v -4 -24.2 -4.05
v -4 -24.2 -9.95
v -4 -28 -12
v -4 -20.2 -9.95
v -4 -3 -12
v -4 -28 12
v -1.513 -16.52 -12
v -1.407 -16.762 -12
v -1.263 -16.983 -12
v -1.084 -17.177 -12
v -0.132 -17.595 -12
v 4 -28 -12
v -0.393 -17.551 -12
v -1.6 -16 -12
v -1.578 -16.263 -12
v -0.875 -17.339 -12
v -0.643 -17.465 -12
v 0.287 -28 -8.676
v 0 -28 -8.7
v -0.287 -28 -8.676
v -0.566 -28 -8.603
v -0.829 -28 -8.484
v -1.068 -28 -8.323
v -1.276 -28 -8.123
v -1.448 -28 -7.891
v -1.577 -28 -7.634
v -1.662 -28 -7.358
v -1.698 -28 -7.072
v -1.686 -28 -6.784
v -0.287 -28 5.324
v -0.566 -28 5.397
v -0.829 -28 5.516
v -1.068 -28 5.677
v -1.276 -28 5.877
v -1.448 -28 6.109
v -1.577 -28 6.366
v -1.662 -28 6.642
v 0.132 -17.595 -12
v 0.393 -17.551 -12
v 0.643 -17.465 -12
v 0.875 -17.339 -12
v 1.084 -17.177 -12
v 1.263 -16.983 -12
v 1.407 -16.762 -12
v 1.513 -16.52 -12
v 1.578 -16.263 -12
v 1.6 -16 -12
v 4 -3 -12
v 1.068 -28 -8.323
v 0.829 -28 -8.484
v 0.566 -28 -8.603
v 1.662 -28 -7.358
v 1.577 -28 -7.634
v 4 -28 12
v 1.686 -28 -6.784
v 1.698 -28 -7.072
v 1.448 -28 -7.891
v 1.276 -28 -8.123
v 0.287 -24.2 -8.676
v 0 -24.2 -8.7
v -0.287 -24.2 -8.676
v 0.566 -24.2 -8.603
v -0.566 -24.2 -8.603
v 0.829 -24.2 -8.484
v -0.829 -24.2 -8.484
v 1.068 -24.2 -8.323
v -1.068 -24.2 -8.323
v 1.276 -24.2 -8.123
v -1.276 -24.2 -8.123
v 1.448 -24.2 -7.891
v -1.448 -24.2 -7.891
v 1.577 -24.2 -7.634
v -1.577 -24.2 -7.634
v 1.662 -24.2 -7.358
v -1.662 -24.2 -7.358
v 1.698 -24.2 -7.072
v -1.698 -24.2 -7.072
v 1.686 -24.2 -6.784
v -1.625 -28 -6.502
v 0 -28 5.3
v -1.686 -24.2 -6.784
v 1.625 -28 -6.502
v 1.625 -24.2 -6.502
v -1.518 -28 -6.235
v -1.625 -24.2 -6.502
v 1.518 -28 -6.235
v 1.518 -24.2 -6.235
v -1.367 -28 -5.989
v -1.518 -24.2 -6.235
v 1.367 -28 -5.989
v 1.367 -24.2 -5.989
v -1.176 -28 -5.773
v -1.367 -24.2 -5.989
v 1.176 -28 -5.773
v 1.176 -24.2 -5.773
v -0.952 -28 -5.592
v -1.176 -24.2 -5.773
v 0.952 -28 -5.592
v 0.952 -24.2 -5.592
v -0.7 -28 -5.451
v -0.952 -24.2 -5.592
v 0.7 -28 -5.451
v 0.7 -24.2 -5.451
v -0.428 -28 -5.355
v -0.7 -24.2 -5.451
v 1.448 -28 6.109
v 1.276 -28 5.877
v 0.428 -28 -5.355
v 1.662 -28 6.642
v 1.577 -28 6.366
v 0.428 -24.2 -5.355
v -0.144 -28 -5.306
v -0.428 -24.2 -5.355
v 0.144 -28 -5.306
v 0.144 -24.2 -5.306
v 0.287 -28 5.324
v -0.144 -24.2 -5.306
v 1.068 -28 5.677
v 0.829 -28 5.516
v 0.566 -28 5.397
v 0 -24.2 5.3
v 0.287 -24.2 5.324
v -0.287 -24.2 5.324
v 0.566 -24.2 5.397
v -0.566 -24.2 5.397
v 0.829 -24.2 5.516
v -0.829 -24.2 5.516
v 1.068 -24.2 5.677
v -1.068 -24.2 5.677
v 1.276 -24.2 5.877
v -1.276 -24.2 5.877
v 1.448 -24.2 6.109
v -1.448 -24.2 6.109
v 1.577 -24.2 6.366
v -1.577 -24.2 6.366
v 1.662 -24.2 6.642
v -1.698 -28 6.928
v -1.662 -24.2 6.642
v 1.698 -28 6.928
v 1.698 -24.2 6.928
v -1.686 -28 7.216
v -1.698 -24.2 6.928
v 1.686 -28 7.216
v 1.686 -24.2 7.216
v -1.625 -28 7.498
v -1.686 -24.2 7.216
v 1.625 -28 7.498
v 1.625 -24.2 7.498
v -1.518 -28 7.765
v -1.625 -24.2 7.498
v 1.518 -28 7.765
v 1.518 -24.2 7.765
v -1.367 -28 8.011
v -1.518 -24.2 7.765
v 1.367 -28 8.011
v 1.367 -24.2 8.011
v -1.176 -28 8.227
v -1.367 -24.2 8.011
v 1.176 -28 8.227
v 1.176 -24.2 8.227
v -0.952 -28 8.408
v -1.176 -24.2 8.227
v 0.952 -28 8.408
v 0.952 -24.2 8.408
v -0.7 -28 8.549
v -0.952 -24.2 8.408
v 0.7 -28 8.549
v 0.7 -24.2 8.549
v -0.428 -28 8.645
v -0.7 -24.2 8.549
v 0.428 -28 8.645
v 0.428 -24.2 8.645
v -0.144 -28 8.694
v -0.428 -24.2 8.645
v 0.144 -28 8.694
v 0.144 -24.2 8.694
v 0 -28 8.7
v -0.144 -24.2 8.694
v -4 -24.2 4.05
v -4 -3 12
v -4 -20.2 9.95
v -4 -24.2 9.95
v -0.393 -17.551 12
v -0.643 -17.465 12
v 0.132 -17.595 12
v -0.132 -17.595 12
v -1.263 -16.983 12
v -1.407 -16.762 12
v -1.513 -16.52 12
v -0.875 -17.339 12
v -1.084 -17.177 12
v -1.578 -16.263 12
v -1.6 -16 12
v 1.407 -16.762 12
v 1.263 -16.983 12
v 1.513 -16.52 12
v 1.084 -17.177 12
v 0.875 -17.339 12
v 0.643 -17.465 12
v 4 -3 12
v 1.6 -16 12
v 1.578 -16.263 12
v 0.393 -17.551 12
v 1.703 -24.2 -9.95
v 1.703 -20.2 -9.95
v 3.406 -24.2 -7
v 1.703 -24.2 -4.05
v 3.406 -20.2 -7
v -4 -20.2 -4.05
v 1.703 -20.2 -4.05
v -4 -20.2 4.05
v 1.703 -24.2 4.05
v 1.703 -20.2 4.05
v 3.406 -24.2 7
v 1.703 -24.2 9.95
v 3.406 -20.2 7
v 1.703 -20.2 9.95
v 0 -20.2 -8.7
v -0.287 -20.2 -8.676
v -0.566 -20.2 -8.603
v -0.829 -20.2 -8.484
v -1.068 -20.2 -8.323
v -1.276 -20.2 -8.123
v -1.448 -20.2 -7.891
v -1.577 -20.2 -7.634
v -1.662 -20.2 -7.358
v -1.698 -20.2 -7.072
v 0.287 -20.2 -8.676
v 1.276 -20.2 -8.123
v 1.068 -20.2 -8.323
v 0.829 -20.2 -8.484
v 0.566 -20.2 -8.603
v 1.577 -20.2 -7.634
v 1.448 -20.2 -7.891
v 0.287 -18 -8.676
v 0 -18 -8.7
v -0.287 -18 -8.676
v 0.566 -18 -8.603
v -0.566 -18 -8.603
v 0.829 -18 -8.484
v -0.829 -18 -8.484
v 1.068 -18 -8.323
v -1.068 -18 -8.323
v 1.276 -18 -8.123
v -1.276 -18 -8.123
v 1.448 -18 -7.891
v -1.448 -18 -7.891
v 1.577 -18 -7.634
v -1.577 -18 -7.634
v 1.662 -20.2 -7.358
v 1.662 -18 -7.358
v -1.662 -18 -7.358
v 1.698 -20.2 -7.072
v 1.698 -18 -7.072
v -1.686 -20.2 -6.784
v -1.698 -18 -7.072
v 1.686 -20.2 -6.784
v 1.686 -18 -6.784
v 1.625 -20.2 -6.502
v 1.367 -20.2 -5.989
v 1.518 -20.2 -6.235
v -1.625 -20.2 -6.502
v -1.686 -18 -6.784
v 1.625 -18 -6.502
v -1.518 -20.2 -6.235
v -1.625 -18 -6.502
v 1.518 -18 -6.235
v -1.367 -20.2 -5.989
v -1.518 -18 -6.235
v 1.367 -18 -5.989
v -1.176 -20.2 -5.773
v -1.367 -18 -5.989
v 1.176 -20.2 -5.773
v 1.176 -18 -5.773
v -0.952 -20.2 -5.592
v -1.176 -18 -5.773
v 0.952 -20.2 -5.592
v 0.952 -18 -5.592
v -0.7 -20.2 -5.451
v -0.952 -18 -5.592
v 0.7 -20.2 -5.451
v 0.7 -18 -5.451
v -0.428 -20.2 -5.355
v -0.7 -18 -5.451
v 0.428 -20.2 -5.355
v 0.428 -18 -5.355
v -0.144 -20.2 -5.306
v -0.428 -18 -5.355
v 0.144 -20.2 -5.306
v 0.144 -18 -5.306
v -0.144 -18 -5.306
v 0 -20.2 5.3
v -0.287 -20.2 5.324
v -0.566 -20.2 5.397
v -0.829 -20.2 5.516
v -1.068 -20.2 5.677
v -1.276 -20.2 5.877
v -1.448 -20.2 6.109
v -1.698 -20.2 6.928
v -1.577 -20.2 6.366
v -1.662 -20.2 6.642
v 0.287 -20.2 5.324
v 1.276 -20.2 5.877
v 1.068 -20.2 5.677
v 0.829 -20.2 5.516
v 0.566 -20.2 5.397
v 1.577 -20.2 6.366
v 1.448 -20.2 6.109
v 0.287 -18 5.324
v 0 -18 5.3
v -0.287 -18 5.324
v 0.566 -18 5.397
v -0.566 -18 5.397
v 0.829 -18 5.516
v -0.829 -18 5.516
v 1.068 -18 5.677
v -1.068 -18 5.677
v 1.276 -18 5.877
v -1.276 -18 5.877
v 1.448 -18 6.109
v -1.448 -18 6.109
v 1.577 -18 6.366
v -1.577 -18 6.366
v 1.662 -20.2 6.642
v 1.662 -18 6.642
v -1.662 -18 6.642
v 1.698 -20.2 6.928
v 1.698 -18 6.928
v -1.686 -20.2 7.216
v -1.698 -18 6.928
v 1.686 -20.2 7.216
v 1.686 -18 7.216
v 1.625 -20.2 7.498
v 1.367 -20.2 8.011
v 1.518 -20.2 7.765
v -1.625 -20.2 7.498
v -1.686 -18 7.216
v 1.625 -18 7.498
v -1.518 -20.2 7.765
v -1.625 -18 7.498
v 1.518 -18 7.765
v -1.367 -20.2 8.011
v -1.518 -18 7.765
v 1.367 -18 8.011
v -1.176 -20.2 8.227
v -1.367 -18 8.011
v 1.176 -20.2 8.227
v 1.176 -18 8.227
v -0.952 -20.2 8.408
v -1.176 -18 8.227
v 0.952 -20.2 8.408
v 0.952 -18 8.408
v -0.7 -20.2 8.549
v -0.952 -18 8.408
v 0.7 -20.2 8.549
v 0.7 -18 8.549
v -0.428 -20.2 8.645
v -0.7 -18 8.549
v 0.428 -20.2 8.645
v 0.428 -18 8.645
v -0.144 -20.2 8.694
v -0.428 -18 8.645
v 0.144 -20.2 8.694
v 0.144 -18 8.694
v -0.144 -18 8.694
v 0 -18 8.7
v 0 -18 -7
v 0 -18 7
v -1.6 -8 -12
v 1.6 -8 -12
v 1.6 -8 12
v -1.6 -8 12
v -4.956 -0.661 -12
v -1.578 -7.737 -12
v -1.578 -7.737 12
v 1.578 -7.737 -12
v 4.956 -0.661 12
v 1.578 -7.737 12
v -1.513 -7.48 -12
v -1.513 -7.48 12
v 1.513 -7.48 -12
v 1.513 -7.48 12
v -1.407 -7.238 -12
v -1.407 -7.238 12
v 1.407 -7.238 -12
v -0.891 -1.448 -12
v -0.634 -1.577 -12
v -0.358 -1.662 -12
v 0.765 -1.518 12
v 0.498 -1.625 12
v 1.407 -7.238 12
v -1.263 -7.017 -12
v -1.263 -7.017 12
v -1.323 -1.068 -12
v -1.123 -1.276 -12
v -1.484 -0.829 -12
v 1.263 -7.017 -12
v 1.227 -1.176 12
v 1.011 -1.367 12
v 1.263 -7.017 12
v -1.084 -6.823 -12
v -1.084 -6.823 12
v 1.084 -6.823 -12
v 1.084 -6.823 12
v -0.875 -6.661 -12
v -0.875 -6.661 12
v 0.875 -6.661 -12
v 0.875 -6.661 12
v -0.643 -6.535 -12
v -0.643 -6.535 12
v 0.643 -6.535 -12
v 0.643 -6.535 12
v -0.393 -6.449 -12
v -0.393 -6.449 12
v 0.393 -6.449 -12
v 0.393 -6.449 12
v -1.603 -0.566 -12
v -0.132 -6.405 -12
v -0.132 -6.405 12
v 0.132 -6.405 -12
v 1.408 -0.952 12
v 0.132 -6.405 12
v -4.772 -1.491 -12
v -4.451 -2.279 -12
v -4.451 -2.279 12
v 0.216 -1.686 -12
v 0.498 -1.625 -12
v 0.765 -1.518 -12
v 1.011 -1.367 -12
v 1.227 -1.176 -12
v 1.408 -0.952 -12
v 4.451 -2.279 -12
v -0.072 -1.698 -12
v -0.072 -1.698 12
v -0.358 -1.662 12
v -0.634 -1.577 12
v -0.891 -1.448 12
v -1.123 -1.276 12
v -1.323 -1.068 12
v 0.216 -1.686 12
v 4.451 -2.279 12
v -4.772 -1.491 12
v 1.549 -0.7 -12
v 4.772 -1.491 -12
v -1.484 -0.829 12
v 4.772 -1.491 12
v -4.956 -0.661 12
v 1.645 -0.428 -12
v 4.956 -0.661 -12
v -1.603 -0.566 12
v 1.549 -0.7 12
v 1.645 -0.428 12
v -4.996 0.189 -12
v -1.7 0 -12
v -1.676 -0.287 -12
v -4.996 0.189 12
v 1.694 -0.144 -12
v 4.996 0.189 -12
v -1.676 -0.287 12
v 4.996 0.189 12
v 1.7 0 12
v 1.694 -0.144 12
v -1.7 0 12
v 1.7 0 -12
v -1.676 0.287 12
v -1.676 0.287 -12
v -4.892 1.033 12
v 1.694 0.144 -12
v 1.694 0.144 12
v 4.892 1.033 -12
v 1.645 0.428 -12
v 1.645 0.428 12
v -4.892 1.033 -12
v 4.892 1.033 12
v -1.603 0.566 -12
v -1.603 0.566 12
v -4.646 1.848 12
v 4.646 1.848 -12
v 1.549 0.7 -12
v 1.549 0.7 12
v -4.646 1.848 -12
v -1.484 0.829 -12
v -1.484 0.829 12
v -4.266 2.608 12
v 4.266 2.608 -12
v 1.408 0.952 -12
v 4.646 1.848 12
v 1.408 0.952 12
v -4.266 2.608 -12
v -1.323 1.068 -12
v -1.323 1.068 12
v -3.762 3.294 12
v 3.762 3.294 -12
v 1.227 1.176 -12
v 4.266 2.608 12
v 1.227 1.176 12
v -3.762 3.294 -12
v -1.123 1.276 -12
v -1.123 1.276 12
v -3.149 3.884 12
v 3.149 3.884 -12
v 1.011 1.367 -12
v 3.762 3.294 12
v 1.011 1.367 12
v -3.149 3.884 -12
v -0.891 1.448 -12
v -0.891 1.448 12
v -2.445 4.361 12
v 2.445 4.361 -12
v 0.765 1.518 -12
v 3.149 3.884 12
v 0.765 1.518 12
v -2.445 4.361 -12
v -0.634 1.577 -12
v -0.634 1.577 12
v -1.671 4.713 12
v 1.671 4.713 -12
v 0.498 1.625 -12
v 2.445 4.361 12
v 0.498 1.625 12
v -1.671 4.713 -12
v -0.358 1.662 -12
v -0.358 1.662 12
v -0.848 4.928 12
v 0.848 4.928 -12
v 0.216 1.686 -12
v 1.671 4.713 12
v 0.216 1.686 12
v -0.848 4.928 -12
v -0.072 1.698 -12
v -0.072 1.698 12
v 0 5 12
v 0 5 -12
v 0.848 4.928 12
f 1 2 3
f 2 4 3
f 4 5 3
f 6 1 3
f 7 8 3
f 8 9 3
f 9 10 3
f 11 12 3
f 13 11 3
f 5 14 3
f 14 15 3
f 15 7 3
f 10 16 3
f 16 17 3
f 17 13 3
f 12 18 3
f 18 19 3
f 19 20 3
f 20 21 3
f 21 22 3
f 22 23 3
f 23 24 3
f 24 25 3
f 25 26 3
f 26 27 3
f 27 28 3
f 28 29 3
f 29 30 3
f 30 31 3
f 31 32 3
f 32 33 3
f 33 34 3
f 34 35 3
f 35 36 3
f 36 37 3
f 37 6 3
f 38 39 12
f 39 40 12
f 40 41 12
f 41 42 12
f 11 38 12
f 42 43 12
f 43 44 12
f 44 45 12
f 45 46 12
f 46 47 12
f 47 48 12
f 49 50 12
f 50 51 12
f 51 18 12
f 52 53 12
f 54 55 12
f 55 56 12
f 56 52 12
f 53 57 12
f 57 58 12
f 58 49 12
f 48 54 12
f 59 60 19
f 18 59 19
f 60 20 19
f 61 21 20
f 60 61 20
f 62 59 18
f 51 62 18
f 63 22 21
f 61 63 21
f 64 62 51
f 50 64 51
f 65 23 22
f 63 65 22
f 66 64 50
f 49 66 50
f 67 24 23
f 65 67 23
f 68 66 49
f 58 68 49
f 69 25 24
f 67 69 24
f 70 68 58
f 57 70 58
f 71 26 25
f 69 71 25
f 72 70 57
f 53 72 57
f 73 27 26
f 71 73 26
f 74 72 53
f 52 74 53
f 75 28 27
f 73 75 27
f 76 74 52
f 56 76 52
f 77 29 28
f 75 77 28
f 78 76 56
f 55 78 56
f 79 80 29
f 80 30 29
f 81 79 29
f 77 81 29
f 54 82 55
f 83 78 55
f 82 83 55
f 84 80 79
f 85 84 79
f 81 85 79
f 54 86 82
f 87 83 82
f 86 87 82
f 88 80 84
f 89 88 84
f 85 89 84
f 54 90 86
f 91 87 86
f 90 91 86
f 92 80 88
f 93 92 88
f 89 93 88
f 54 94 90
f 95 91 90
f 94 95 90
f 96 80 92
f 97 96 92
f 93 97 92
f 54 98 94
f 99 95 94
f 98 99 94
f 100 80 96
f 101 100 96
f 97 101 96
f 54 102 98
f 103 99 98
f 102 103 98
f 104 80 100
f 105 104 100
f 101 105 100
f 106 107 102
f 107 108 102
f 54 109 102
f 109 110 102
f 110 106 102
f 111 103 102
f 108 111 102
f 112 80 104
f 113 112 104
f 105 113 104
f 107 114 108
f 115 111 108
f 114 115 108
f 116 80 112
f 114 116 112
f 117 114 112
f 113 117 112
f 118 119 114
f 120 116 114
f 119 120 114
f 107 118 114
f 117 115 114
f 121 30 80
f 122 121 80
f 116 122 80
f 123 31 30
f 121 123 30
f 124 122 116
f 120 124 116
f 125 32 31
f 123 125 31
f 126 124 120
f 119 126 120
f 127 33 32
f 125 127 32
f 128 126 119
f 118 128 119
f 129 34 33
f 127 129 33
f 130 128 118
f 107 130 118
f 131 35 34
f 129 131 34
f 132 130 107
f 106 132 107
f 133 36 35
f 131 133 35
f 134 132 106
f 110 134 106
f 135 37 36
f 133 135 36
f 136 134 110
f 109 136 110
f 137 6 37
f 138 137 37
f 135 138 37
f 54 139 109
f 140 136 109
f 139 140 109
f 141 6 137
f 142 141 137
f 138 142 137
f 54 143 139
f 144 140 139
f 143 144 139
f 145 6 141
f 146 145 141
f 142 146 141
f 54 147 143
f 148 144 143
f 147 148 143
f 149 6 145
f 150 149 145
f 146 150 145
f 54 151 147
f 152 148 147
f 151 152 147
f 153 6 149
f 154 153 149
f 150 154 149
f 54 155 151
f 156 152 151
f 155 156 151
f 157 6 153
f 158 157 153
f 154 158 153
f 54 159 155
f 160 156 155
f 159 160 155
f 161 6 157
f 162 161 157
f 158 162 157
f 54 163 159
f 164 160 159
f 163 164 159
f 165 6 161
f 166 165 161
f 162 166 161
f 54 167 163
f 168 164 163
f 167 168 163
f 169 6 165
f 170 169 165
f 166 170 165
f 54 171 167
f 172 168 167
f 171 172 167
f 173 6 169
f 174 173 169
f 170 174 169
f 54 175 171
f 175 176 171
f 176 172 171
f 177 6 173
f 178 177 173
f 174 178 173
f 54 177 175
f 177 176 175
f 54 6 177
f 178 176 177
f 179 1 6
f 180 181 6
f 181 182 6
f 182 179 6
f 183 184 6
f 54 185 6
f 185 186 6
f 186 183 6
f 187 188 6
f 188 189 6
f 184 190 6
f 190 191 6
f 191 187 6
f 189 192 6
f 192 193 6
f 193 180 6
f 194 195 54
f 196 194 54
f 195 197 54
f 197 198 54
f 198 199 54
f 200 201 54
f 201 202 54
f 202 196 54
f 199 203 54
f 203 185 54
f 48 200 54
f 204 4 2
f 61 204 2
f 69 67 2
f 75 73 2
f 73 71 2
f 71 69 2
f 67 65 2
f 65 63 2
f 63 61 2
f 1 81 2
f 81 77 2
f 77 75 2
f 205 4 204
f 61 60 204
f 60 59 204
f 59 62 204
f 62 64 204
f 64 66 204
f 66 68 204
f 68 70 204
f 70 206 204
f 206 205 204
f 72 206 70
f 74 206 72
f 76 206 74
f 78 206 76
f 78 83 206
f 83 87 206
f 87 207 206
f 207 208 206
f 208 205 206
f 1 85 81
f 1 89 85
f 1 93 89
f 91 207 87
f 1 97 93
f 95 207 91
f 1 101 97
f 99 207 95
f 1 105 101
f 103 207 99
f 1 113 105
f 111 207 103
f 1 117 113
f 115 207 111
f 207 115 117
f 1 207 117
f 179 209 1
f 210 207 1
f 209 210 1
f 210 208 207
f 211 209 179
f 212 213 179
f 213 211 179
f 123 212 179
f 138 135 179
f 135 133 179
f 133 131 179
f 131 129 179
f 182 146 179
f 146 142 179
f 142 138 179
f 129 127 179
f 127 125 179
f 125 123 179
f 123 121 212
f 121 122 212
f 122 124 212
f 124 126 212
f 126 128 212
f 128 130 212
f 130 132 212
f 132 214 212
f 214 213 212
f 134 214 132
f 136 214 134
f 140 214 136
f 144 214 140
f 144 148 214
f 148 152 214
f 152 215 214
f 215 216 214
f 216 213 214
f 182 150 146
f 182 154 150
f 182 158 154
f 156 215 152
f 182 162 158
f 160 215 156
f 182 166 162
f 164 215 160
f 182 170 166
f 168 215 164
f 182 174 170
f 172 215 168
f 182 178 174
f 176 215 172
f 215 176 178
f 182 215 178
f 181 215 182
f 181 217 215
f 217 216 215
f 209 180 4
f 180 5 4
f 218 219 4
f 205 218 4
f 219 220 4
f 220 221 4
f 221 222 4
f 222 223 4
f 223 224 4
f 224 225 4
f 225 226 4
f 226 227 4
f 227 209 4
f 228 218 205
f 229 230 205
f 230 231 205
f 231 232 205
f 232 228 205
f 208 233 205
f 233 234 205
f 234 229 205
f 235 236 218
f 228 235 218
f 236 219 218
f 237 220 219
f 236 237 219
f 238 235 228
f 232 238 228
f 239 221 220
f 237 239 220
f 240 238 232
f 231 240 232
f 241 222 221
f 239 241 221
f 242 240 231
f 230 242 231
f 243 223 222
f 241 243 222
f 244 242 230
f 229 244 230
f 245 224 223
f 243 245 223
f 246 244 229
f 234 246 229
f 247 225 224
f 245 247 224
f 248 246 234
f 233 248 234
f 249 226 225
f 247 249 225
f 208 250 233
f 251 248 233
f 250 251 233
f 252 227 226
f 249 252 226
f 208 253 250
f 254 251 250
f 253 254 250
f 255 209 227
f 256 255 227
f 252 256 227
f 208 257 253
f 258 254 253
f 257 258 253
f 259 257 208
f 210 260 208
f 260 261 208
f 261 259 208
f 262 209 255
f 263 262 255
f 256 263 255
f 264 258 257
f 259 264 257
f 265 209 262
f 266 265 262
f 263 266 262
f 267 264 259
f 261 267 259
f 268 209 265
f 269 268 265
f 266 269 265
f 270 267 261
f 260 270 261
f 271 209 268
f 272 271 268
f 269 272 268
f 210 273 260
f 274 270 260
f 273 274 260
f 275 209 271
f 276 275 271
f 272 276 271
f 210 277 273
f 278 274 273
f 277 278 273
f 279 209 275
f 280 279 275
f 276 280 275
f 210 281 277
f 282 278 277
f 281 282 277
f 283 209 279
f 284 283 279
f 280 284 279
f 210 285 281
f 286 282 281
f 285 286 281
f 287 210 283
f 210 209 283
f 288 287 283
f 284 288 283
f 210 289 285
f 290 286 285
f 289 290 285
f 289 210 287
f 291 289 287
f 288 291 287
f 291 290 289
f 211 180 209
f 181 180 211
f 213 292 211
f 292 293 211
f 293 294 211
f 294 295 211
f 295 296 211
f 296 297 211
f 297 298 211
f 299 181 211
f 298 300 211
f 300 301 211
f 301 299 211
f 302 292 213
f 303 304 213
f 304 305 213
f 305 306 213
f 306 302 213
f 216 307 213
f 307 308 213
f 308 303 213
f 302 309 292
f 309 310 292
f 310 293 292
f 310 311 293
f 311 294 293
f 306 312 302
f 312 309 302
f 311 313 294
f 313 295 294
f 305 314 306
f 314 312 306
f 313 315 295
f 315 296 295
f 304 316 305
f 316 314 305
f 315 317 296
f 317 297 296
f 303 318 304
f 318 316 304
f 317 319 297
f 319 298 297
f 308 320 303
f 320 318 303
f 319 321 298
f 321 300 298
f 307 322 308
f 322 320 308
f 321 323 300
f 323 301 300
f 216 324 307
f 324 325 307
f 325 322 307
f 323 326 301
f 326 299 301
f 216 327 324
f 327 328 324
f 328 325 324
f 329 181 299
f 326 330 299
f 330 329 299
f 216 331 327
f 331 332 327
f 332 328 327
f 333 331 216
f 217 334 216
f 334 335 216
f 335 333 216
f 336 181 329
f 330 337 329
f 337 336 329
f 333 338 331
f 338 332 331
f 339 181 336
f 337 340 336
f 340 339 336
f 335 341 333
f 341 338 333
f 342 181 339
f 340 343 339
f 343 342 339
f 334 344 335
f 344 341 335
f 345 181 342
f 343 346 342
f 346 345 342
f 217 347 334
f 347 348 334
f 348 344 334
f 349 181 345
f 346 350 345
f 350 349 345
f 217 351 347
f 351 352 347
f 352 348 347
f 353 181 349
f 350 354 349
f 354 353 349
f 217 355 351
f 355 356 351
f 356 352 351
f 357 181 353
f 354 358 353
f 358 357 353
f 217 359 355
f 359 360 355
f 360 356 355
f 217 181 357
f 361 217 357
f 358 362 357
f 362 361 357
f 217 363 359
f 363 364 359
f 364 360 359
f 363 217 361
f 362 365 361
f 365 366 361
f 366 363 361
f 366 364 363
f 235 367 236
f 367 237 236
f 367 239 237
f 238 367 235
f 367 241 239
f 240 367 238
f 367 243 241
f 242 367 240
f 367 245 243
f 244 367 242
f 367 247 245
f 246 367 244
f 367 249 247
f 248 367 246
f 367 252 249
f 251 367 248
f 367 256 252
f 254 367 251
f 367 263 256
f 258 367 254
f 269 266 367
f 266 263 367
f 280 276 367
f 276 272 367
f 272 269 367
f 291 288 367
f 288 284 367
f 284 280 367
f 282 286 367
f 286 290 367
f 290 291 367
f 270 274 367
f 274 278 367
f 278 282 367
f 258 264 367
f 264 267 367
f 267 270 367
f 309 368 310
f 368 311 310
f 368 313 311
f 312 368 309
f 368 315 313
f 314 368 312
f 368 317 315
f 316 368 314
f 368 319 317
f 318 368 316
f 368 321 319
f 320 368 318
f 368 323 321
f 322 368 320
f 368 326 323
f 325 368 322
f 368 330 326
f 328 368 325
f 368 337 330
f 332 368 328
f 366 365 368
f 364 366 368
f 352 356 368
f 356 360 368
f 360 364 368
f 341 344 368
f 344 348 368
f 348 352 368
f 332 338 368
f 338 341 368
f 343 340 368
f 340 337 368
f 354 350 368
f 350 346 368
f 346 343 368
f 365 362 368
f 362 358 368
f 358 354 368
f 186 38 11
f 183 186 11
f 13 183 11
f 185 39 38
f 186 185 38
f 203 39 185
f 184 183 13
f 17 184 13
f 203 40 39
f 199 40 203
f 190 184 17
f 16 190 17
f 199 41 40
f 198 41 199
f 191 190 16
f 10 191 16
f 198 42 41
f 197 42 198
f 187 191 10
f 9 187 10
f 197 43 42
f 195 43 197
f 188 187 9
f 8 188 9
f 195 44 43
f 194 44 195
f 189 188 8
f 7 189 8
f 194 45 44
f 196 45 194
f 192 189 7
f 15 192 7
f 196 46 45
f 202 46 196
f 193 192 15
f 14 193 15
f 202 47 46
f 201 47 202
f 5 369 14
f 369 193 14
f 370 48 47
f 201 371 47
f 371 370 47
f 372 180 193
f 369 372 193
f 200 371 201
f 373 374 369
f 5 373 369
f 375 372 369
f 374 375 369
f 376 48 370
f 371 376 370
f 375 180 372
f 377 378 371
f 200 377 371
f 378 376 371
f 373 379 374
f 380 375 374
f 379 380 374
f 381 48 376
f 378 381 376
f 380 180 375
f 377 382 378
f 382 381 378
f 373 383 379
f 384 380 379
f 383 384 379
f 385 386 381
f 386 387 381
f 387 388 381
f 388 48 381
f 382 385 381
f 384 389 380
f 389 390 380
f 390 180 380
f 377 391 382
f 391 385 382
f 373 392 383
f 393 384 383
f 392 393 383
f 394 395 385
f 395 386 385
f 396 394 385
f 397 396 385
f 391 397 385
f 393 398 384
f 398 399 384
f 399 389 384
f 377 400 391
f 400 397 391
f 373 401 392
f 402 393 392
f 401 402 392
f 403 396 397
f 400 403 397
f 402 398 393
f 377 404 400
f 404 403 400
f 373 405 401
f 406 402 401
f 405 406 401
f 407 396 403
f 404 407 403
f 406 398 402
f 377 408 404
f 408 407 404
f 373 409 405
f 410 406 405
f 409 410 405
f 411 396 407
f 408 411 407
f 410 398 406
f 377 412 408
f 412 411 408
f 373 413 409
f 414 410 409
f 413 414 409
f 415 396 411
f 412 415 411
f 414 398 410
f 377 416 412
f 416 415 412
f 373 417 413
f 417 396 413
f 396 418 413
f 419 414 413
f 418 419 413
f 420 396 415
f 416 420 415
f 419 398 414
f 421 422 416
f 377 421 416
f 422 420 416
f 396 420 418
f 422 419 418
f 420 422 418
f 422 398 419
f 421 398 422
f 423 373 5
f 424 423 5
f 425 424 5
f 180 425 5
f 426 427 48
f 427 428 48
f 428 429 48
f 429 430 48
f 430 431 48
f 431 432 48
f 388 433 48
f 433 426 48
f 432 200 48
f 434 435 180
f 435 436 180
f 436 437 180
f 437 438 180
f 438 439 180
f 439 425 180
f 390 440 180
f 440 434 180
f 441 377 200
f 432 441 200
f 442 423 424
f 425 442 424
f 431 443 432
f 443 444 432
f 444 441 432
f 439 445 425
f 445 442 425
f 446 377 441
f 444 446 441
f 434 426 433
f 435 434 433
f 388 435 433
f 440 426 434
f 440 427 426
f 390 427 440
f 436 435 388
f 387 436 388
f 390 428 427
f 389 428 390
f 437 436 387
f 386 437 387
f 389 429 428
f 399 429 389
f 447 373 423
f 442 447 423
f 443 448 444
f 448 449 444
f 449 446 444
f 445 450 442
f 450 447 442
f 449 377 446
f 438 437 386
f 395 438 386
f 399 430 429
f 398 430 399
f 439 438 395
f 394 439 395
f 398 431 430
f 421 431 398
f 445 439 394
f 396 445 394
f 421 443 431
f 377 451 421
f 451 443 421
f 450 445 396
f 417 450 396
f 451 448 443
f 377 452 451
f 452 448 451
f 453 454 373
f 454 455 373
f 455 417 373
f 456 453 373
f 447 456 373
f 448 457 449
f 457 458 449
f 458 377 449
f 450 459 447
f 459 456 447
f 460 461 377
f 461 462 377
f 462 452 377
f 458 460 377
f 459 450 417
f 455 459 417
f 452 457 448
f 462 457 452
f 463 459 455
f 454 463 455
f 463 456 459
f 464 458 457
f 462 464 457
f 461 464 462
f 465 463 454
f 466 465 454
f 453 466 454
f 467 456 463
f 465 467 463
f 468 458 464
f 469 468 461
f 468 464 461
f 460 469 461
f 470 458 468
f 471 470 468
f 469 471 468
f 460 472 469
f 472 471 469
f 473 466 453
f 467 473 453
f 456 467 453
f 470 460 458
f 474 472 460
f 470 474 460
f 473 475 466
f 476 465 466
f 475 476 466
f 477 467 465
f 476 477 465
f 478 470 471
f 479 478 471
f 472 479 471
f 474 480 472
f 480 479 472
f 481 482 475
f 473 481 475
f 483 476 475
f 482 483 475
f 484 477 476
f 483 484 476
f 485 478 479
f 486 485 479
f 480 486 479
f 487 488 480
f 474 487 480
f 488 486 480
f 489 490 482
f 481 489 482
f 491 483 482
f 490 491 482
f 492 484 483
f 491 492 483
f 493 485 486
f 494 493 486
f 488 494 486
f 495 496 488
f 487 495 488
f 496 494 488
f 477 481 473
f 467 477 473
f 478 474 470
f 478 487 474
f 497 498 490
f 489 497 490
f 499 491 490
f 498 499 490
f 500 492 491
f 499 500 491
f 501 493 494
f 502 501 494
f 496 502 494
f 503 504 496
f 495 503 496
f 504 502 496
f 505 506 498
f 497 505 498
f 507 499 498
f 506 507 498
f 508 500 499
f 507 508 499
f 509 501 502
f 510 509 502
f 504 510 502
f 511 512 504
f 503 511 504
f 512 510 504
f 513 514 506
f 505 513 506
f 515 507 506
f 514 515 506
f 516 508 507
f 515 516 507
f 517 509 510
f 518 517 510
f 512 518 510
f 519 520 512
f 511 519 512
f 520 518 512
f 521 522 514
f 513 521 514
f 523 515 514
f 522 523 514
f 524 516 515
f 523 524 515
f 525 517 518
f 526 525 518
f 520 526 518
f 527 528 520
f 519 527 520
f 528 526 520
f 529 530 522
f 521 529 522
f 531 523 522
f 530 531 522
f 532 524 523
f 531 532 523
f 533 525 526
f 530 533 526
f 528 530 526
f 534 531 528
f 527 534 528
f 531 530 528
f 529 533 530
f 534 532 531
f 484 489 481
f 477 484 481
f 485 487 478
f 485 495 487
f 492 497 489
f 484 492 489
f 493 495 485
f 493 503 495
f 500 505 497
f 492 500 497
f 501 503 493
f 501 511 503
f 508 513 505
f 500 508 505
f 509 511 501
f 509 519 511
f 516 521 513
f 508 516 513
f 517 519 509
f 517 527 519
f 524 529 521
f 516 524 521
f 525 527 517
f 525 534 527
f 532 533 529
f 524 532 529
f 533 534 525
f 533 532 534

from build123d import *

# Parameters (mm, degrees)
CROQUIS1_R              = 1.7
SALIENTE_EXTRUIR1_DEPTH = 12
CROQUIS2_R              = 1.7
TORNILLO_DEPTH          = 10
TUERCA_DEPTH            = 4


with BuildPart() as part:
    # Croquis1 → Saliente-Extruir1 (new body, symmetric)
    with BuildSketch(Plane.XY):
        with BuildLine():
            Line((-4, -3), (-4, -28))
            Line((-4, -28), (4, -28))
            Line((4, -28), (4, -3))
            ThreePointArc((4, -3), (0, 5), (-4, -3))
        make_face()
        Circle(CROQUIS1_R, mode=Mode.SUBTRACT)
        with BuildLine():
            Line((1.6, -8), (1.6, -16))
            ThreePointArc((1.6, -16), (0, -17.6), (-1.6, -16))
            Line((-1.6, -16), (-1.6, -8))
            ThreePointArc((-1.6, -8), (0, -6.4), (1.6, -8))
        make_face(mode=Mode.SUBTRACT)
    extrude(amount=SALIENTE_EXTRUIR1_DEPTH, both=True)

    # Croquis2 → TORNILLO (cut)
    with BuildSketch(Plane.XZ.offset(28)):
        with Locations((0, -7)):
            Circle(CROQUIS2_R)
    tornillo = extrude(amount=-TORNILLO_DEPTH, mode=Mode.SUBTRACT)

    # Croquis3 → TUERCA (cut)
    with BuildSketch(Plane(origin=(0, -24.2, 0), x_dir=(-1, 0, 0), z_dir=(0, -1, 0))):
        Polygon((1.703183294, 9.95), (5, 9.95), (5, 4.05), (1.703183294, 4.05), (-1.703183294, 4.05), (-3.406366588, 7), (-1.703183294, 9.95), align=None)
    tuerca = extrude(amount=-TUERCA_DEPTH, mode=Mode.SUBTRACT)

    # Simetría1: TORNILLO, TUERCA across plane
    add(tornillo.mirror(Plane.XY), mode=Mode.SUBTRACT)
    add(tuerca.mirror(Plane.XY), mode=Mode.SUBTRACT)


solid = part.part
